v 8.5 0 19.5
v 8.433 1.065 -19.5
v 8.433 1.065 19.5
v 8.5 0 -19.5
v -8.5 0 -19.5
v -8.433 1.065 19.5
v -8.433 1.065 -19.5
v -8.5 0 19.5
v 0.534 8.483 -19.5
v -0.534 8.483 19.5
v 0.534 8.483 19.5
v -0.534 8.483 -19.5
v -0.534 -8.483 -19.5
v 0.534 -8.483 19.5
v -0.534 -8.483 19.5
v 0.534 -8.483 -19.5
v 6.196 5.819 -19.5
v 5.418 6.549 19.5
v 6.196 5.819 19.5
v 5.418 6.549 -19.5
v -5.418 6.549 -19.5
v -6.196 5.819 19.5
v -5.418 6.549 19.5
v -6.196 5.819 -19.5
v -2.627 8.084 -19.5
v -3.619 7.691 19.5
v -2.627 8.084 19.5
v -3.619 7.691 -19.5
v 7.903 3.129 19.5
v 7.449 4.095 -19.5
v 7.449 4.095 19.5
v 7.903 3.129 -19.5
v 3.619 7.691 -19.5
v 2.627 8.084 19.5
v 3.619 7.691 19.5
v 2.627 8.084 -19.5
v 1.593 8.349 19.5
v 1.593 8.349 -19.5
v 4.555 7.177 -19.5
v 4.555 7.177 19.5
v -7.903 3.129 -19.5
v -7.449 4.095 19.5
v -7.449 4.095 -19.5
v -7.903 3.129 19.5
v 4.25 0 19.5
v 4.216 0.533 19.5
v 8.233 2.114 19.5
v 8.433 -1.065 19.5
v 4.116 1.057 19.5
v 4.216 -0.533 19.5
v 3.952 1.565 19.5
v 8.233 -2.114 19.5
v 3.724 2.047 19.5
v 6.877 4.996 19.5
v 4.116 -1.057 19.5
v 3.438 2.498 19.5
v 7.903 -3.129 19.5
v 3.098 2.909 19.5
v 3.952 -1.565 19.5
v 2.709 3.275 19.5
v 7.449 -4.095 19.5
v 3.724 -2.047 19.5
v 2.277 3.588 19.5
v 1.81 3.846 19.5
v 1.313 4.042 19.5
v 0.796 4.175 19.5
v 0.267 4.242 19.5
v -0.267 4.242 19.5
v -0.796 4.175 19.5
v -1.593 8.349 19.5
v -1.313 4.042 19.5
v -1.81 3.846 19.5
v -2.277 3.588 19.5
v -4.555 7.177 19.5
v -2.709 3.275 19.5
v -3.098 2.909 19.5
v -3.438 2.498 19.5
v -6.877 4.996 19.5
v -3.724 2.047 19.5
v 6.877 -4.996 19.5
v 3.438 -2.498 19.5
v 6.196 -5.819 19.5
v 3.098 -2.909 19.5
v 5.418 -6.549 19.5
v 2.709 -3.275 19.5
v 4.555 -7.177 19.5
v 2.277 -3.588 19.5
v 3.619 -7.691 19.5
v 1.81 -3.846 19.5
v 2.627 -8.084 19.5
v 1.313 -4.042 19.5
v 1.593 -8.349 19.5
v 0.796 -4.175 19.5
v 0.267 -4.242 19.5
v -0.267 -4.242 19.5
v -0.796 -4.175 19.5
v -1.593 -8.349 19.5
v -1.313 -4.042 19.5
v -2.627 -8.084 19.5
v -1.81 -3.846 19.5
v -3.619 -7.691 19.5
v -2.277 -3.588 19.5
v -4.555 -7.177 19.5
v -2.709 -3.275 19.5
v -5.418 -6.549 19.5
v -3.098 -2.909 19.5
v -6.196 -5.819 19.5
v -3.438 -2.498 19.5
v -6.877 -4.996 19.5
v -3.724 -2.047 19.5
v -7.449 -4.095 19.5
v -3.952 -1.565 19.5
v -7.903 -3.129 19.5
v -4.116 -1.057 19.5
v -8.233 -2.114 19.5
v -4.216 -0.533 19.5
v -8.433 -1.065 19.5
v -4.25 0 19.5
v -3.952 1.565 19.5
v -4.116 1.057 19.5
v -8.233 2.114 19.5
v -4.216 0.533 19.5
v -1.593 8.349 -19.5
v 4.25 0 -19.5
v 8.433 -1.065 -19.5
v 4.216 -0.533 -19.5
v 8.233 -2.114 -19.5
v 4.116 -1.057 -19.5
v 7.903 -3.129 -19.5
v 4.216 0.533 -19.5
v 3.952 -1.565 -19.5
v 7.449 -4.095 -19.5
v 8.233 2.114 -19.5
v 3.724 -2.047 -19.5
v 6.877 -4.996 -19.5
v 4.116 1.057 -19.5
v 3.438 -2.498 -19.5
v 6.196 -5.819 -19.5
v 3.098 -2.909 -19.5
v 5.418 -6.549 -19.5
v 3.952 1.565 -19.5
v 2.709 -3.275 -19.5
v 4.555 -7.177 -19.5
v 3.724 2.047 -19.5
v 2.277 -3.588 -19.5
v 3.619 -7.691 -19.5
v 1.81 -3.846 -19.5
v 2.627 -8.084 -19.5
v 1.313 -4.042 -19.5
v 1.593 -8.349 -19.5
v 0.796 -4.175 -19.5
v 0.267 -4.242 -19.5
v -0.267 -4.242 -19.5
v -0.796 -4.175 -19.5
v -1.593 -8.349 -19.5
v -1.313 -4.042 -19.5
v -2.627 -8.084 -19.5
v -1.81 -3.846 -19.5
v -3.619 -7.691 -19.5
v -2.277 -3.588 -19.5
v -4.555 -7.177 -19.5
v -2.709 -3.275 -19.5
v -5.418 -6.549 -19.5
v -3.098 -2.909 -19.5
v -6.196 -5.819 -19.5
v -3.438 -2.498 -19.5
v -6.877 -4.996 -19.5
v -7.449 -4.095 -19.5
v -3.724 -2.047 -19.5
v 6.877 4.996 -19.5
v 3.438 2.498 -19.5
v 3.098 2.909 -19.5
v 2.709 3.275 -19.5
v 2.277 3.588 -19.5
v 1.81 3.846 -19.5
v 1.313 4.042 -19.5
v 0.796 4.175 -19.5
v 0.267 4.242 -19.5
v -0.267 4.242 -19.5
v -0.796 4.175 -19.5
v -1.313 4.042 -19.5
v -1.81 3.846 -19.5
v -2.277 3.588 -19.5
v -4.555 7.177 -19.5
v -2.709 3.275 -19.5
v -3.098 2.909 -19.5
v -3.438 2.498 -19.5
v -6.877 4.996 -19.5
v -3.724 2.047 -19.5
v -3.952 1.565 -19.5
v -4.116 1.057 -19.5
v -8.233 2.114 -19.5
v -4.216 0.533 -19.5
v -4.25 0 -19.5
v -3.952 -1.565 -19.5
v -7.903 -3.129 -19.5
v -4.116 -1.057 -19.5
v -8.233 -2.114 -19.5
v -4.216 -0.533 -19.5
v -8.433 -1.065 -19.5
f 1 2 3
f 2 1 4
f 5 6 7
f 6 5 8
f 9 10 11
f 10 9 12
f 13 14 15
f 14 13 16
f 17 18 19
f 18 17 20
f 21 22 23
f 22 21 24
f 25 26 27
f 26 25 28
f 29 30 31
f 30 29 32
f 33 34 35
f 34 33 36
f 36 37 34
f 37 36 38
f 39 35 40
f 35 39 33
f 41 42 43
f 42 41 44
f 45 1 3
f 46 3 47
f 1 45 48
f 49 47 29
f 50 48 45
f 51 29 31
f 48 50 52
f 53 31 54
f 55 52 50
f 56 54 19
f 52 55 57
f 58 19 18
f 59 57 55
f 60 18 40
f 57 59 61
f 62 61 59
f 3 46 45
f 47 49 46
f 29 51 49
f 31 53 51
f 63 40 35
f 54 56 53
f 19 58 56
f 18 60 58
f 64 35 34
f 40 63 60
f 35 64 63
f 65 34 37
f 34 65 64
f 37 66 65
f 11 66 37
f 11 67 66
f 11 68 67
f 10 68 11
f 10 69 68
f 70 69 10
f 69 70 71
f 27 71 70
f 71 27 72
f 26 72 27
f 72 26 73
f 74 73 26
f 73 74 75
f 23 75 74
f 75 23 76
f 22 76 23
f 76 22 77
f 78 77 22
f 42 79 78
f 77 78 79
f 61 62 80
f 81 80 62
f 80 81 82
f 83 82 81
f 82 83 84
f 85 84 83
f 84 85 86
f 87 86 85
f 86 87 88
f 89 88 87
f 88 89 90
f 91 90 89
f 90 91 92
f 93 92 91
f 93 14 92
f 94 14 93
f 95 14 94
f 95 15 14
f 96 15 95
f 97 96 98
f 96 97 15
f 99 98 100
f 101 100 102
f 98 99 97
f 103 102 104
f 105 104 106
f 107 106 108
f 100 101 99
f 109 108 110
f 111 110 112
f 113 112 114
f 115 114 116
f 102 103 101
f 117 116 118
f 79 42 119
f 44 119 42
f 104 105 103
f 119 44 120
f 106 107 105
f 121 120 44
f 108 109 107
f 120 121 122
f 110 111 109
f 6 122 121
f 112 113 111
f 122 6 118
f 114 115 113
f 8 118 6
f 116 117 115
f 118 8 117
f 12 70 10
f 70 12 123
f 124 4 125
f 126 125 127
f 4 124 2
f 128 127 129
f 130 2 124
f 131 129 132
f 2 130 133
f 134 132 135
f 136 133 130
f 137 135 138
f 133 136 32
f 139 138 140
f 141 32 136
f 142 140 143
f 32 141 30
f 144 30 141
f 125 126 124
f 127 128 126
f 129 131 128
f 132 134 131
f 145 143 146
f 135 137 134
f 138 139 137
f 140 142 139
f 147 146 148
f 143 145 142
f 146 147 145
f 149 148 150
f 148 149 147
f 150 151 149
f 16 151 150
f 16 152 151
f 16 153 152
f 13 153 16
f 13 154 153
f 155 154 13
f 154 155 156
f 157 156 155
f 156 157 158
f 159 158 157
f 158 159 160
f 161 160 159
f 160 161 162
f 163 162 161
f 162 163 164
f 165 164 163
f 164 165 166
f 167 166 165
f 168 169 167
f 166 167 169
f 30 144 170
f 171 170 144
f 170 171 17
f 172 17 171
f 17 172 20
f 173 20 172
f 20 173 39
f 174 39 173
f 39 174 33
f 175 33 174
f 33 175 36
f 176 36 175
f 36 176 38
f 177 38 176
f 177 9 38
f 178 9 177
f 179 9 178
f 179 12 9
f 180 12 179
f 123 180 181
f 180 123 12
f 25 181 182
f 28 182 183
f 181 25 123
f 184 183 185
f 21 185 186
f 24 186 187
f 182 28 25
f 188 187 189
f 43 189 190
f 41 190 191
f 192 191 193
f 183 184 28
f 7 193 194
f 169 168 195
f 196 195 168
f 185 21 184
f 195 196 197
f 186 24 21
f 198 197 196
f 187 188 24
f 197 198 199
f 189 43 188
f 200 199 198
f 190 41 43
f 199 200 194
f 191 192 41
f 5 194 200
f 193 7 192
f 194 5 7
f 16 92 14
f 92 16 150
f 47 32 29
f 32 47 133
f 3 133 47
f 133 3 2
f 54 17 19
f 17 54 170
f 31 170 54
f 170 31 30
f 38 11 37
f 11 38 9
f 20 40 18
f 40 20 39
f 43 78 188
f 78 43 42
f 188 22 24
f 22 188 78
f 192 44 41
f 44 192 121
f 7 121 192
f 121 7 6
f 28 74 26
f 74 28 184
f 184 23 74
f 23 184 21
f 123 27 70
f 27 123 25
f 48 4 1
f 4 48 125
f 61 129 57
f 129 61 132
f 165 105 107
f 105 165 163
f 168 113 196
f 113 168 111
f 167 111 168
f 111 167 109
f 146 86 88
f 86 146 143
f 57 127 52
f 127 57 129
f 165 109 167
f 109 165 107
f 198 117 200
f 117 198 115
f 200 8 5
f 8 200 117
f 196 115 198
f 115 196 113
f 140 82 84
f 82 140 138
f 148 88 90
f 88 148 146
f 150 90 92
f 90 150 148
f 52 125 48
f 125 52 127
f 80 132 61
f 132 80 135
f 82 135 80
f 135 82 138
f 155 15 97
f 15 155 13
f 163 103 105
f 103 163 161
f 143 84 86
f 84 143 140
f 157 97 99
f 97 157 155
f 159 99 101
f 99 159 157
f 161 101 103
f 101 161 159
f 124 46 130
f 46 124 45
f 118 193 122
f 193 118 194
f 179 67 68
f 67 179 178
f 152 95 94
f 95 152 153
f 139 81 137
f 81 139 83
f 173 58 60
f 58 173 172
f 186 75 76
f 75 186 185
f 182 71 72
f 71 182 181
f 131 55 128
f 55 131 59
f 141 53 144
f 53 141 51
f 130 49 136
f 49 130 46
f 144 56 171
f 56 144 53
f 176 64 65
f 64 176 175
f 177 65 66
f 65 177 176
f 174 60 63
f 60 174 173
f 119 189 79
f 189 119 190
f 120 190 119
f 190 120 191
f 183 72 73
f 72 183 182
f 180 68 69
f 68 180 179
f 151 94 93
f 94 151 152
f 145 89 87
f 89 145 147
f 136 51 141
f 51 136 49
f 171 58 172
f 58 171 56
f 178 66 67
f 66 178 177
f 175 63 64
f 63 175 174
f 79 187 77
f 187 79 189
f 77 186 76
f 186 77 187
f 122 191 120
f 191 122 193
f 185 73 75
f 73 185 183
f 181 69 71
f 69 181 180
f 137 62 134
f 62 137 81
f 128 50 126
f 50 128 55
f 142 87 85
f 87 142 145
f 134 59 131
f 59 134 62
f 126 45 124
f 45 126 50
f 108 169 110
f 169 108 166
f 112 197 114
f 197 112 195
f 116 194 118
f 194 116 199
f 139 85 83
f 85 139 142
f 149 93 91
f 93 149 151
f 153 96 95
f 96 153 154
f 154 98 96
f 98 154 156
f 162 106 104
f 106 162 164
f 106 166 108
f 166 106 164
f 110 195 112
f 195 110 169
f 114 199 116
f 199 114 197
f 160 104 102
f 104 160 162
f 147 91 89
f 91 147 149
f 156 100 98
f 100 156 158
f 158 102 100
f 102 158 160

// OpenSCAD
$fn = 50;


difference() {
	union() {
		translate(v = [0, 0, -19.5000000000]) {
			cylinder(h = 39, r = 8.5000000000);
		}
	}
	union() {
		translate(v = [0, 0, -100.0000000000]) {
			cylinder(h = 200, r = 4.2500000000);
		}
	}
}
